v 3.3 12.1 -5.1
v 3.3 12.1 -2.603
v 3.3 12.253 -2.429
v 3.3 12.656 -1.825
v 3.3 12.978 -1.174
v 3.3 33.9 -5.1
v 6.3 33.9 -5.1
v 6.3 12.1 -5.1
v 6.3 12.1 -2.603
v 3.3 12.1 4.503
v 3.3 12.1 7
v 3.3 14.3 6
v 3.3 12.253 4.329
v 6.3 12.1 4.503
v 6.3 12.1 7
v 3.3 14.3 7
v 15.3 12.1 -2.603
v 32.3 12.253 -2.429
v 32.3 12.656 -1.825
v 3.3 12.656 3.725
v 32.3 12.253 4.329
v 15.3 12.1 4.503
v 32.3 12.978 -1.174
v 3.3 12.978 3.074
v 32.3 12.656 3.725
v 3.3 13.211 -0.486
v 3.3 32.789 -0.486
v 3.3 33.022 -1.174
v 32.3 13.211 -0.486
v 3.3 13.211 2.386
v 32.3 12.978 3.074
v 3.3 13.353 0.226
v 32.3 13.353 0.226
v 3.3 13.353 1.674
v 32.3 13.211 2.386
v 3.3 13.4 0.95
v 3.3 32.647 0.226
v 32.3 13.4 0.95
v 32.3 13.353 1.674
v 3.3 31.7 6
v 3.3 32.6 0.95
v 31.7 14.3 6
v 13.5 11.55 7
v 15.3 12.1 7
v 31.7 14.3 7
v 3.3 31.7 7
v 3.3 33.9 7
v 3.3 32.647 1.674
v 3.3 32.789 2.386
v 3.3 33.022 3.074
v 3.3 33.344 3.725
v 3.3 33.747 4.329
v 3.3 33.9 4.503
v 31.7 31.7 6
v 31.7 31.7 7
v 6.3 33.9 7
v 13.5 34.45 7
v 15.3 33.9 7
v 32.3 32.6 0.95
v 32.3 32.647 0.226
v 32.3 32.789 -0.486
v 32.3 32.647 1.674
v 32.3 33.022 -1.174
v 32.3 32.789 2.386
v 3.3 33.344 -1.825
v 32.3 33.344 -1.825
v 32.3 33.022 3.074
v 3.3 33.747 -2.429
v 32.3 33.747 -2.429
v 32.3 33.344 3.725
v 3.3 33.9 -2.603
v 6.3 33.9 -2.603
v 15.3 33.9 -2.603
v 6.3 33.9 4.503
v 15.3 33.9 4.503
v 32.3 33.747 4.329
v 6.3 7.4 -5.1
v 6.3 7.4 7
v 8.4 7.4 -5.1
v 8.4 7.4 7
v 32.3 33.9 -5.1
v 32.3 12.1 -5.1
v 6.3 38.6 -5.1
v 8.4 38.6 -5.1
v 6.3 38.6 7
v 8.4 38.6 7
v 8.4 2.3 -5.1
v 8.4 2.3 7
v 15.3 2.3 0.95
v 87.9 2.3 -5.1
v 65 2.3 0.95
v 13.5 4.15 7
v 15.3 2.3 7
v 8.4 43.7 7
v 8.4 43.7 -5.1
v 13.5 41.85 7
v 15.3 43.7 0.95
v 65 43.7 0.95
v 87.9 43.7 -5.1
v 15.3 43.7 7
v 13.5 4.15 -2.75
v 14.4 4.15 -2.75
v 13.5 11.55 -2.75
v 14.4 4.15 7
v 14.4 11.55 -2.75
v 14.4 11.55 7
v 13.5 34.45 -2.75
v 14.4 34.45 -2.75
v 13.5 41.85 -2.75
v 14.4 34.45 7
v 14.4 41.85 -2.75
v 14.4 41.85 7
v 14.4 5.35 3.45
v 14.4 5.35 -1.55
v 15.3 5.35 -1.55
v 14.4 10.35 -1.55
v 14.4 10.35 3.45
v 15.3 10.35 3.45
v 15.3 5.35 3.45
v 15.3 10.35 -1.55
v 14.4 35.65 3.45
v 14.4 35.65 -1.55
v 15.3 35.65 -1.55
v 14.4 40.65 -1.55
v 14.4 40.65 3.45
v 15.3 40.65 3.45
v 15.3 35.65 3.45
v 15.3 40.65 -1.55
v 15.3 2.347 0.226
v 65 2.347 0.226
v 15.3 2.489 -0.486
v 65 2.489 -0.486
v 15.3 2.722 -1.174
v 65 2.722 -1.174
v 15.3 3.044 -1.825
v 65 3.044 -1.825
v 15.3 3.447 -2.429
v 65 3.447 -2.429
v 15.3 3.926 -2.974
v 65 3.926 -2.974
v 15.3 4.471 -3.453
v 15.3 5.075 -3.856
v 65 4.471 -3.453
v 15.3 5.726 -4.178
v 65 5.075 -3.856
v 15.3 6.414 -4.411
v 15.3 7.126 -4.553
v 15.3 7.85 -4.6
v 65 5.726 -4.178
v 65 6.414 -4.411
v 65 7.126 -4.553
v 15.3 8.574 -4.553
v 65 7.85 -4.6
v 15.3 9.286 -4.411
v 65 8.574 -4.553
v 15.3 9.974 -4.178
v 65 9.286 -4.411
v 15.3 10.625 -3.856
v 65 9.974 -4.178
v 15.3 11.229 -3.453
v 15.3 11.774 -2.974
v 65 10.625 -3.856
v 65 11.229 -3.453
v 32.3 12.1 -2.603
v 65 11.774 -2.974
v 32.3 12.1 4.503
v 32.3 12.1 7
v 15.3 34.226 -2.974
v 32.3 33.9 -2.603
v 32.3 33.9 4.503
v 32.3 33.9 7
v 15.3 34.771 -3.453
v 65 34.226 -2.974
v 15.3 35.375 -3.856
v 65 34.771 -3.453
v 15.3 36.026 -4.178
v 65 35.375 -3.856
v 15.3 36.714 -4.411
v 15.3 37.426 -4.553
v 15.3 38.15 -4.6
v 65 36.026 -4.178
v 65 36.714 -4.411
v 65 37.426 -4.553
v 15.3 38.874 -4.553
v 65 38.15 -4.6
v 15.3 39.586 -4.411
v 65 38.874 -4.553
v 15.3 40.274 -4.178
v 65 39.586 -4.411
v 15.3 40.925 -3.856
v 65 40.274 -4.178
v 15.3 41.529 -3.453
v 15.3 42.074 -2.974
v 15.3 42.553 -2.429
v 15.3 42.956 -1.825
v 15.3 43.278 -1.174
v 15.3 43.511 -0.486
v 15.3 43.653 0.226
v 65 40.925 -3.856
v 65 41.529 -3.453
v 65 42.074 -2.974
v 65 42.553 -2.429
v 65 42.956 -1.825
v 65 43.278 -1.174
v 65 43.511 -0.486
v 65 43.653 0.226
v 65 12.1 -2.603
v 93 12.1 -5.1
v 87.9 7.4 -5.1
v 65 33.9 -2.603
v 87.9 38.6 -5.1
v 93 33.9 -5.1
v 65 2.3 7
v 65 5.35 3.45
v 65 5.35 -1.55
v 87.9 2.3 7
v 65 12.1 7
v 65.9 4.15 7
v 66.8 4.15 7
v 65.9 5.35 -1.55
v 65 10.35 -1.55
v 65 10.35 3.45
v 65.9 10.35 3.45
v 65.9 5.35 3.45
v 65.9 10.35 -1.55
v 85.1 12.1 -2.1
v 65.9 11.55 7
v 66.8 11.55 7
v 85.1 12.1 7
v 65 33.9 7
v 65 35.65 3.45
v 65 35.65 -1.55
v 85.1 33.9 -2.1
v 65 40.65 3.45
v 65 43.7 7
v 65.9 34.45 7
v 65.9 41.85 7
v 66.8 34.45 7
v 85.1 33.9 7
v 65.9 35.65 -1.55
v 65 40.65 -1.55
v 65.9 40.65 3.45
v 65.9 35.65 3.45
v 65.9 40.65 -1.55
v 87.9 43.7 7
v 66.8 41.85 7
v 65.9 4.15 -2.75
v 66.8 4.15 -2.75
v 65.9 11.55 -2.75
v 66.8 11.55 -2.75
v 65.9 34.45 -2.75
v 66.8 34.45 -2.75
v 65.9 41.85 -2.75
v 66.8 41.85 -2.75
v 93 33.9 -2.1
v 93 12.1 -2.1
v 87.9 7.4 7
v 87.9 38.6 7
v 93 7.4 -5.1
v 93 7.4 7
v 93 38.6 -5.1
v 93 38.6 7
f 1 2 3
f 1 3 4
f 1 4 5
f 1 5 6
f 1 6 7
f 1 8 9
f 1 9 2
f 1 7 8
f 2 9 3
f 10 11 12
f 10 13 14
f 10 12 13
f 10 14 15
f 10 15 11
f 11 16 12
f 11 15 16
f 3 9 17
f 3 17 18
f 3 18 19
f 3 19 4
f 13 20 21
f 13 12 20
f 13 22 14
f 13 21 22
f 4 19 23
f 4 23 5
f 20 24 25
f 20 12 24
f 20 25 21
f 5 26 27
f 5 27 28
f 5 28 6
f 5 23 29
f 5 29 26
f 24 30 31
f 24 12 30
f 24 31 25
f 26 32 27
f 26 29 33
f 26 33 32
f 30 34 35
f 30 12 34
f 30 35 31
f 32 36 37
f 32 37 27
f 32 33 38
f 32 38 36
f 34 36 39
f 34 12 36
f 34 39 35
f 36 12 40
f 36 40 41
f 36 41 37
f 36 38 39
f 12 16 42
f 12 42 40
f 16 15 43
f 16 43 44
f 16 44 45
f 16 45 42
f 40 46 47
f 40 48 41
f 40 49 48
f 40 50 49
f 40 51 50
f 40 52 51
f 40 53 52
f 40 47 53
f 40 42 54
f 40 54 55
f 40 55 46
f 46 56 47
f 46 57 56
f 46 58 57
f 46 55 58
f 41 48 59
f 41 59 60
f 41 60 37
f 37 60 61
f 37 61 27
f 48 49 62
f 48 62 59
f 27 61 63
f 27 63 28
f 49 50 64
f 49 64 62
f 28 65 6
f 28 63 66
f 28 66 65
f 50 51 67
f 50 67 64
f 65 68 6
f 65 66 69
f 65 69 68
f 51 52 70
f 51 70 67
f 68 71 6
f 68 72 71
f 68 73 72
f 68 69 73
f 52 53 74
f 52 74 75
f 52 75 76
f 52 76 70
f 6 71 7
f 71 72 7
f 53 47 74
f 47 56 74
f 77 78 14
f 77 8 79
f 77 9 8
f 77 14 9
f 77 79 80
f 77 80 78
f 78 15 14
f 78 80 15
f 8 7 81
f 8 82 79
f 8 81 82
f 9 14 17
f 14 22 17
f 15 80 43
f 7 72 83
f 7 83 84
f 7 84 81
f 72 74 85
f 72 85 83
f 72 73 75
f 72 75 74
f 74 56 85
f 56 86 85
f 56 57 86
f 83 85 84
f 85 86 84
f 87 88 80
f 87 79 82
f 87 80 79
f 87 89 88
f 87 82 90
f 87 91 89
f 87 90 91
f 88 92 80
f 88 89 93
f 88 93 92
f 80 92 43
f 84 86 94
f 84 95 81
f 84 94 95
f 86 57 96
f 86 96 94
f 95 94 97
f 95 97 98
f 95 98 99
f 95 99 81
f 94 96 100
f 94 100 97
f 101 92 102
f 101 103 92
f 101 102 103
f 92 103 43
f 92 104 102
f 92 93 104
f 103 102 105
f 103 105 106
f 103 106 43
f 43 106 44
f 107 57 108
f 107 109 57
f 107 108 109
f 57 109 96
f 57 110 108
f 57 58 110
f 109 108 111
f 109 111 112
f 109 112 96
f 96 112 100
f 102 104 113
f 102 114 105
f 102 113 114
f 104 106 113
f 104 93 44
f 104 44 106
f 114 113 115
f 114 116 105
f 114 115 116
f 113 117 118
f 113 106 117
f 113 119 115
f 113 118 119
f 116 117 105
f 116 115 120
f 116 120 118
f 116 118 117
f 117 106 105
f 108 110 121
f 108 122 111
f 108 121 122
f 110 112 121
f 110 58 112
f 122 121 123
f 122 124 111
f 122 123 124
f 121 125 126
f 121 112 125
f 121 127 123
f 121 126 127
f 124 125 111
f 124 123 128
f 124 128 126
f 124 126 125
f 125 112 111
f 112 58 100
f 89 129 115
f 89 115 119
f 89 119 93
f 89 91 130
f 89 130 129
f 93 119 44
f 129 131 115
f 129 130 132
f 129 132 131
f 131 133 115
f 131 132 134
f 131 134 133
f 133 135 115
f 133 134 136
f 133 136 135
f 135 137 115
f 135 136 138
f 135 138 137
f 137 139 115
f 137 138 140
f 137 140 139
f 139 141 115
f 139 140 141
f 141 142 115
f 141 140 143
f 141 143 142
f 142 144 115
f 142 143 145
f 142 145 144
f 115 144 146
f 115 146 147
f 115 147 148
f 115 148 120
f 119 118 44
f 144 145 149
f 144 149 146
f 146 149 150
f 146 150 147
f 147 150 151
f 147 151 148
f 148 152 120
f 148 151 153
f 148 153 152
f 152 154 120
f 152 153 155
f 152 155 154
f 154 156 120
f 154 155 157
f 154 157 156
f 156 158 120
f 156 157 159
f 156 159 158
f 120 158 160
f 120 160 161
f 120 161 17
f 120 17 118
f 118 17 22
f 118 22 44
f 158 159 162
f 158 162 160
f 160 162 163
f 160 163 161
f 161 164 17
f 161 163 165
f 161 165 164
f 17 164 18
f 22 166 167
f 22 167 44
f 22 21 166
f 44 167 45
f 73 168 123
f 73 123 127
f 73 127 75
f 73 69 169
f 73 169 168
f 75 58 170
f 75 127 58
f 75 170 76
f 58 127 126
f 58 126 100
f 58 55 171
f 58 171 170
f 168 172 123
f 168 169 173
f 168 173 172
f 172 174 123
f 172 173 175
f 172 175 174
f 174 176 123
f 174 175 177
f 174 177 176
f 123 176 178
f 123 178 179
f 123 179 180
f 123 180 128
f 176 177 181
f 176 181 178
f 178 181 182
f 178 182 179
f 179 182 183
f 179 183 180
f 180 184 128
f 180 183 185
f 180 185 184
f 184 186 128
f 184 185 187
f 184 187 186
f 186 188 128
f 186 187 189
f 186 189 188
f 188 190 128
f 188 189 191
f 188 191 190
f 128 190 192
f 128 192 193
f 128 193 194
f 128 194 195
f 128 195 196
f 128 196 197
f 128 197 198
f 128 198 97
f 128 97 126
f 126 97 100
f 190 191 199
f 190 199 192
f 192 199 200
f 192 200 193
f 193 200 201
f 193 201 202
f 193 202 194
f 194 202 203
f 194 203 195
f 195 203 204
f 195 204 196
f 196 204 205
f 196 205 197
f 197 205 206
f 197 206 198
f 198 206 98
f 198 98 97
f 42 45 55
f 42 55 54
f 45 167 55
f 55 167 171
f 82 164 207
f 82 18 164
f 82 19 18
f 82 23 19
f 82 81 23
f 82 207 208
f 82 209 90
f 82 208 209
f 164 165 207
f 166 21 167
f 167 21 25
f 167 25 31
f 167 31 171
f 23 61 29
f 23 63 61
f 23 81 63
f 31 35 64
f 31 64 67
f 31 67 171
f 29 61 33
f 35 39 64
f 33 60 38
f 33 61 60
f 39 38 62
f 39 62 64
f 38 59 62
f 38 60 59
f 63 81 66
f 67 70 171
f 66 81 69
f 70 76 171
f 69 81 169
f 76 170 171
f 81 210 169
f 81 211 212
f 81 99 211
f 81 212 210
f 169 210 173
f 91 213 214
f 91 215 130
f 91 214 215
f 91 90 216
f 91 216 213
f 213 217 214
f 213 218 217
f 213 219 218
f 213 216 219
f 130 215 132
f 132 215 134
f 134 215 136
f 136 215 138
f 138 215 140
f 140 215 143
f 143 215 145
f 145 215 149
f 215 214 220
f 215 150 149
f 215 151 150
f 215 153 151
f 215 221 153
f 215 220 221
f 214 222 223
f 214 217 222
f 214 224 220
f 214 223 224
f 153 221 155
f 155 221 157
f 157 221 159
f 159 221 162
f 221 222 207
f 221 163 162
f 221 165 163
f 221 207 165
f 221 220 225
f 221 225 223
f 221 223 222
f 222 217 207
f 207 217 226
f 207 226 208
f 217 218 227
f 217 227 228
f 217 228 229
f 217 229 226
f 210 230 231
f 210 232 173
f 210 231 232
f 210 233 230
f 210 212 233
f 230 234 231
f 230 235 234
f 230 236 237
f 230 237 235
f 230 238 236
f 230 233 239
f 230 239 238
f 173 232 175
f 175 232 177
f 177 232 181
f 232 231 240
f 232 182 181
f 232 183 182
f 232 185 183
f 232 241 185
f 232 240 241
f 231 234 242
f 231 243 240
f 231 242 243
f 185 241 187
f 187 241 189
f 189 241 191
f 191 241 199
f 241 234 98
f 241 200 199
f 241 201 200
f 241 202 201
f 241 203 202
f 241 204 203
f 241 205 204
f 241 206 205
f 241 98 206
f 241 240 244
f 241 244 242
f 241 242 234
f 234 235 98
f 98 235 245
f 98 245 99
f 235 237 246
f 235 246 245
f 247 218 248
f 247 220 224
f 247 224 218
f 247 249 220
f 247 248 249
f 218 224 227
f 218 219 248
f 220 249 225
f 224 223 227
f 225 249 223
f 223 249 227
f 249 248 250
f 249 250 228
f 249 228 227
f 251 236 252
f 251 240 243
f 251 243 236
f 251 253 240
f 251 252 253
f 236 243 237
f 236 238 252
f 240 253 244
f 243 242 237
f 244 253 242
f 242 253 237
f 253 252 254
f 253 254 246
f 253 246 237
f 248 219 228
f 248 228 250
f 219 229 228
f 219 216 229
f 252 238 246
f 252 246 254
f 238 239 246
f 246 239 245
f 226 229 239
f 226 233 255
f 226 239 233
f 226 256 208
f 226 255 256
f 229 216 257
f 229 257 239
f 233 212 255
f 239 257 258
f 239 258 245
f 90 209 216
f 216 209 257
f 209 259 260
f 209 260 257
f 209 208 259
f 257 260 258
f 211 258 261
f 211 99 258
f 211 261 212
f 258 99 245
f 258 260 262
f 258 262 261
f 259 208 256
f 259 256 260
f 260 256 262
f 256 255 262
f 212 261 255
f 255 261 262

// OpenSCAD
// Dilder Rev 2 "extended with joystick" — AAA CRADLE WITH BATT CLIPS (2026-04-27)
//
// Fork of aaa-cradle-insert-v1.scad. Defaults are baked from the
// "working insert 4-26-26" preset (matched the existing constants
// exactly — no value changes vs parent SCAD). The new feature is
// 4 vertical drop-in slots sized for the smallest Swpeet 1.5V AAA
// battery contact plate (unipolar, 7 × 7 mm stamped sheet metal),
// one at each X end of each AAA bay.
//
// How the slots are used:
//   - Each plate drops in from the plug top face into a 7.4 × 7.4 mm
//     pocket, plate face perpendicular to the cell axis.
//   - The pocket is 0.9 mm thick along X (plate ~0.5 mm + 0.2 mm slop
//     per edge), so the plate is press-fit / friction-held by its own
//     thickness.
//   - The pocket extends from cell-axis level up to the plug top so
//     wires can exit upward and the plate is droppable post-print.
//   - Spring side faces INTO the bay; the cell pushes the plate's
//     contact face axially. Solder a wire to the plate's outer face
//     before insertion.
//
// Note: only unipolar plates are used (4 total = 2 bays × 2 ends).
// Wire the cells in PARALLEL — never in series, since 2S 10440 = 7.4 V
// would exceed the Pico W's 5.5 V VSYS max.
//
// Export:
//   openscad -o aaa-cradle-with-batt-clips.3mf aaa-cradle-with-batt-clips.scad

$fn = 48;

// ============================================================
// Match the cover / base shell parameters
// ============================================================
enclosure_outer_width_along_x_axis_mm          = 94.5;   // was 91.5 — +3 mm on -X side for TP4056
enclosure_outer_depth_along_y_axis_mm          = 46;
minus_x_end_wall_thickness_mm                  = 3.0;
plus_x_end_wall_thickness_mm                   = 1.2;
perimeter_long_side_wall_thickness_y_mm_base   = 2;
corner_pillar_square_side_length_mm            = 5;

// Cover cavity inner bounds (the space the plug fills)
cavity_inner_x_start_mm = minus_x_end_wall_thickness_mm;                         // = 3.0
cavity_inner_x_end_mm =
    enclosure_outer_width_along_x_axis_mm
      - plus_x_end_wall_thickness_mm;                                            // = 93.3
cavity_inner_y_start_mm = perimeter_long_side_wall_thickness_y_mm_base;          // = 2.0
cavity_inner_y_end_mm =
    enclosure_outer_depth_along_y_axis_mm
      - perimeter_long_side_wall_thickness_y_mm_base;                            // = 44.0

// Plug outer footprint = cavity − a tiny slide-in slop on every wall.
plug_wall_slop_mm                              = 0.3;
plug_x_start_mm = cavity_inner_x_start_mm + plug_wall_slop_mm;                   // = 3.3
plug_x_end_mm   = cavity_inner_x_end_mm   - plug_wall_slop_mm;                   // = 93.0
plug_y_start_mm = cavity_inner_y_start_mm + plug_wall_slop_mm;                   // = 2.3
plug_y_end_mm   = cavity_inner_y_end_mm   - plug_wall_slop_mm;                   // = 43.7

// ============================================================
// Plug Z
// ============================================================
face_plate_bottom_z_in_cover_local_mm          = 7;
aaa_cell_diameter_mm                           = 10.5;
aaa_cell_radial_slop_mm                        = 0.3;
aaa_bay_diameter_mm =
    aaa_cell_diameter_mm + 2 * aaa_cell_radial_slop_mm;  // = 11.1
aaa_bay_wall_above_and_below_mm                = 0.5;

plug_thickness_mm =
    aaa_bay_diameter_mm + 2 * aaa_bay_wall_above_and_below_mm;  // = 12.1
plug_top_z_mm = face_plate_bottom_z_in_cover_local_mm;          // = 7
plug_bottom_z_mm = plug_top_z_mm - plug_thickness_mm;           // = -5.1

// ============================================================
// AAA cells — 2 cells lying along X, stacked in Y
// ============================================================
aaa_cell_length_mm                             = 44.5;
aaa_cell_axial_slop_mm                         = 1.0;
aaa_cell_contact_space_per_end_mm              = 2.0;
aaa_bay_length_along_x_mm =
    aaa_cell_length_mm
      + 2 * aaa_cell_contact_space_per_end_mm
      + aaa_cell_axial_slop_mm;                          // = 49.5

plus_x_pillar_cutout_minus_x_edge_mm =
    (enclosure_outer_width_along_x_axis_mm
       - plus_x_end_wall_thickness_mm
       - corner_pillar_square_side_length_mm)
      - 0.4;                                              // = 87.9
aaa_bay_gap_from_pillar_cutout_mm              = 3.0;
aaa_bay_shift_toward_minus_x_mm               = 20;      // shift bays 20 mm toward origin
aaa_bay_plus_x_end_mm =
    plus_x_pillar_cutout_minus_x_edge_mm
      - aaa_bay_gap_from_pillar_cutout_mm
      - aaa_bay_shift_toward_minus_x_mm;                  // = 69.9
aaa_bay_minus_x_start_mm =
    aaa_bay_plus_x_end_mm - aaa_bay_length_along_x_mm;   // = 20.4

aaa_bay_minus_y_center_y_mm =
    plug_y_start_mm + aaa_bay_diameter_mm / 2;            // = 7.85
aaa_bay_plus_y_center_y_mm =
    plug_y_end_mm - aaa_bay_diameter_mm / 2;              // = 38.15
aaa_bay_center_z_mm =
    (plug_top_z_mm + plug_bottom_z_mm) / 2;               // ≈ 0.95

aaa_bay_top_open_z_bottom_mm                   = aaa_bay_center_z_mm;
aaa_bay_top_open_z_top_mm                      = plug_top_z_mm + 0.1;

// ============================================================
// Battery contact-plate slots — Swpeet 1.5 V AAA battery spring kit,
// smallest unipolar plate (7 × 7 mm stamped sheet metal). Four slots
// total (2 bays × 2 ends). Plates drop in from above; wires exit
// through the top of the slot.
//
// Slot orientation: plate sits in the YZ plane, perpendicular to the
// cell axis. Plate face flush with the bay's X end. Slot is centered
// on the bay Y center and on the cell axis Z.
// ============================================================
batt_clip_plate_size_y_mm                      = 7.0;     // smallest Swpeet unipolar plate
batt_clip_plate_size_z_mm                      = 7.0;     // smallest Swpeet unipolar plate
batt_clip_plate_thickness_x_mm                 = 0.5;     // sheet metal thickness
batt_clip_slot_slop_per_edge_mm                = 0.2;     // print tolerance per edge

batt_clip_slot_y_size_mm =
    batt_clip_plate_size_y_mm + 2 * batt_clip_slot_slop_per_edge_mm;            // = 7.4
batt_clip_slot_x_size_mm =
    batt_clip_plate_thickness_x_mm + 2 * batt_clip_slot_slop_per_edge_mm;       // = 0.9
batt_clip_slot_z_bottom_mm =
    aaa_bay_center_z_mm
      - batt_clip_plate_size_z_mm / 2
      - batt_clip_slot_slop_per_edge_mm;                                         // ≈ -2.75
batt_clip_slot_z_top_mm                        = plug_top_z_mm + 0.1;            // = 7.1

// ============================================================
// Battery clip retainer wall — keeps the contact plate from
// sliding INTO the bay (toward the cell). Thin wall sits on the
// cell side of each clip slot, with a smaller central window so
// the plate's edges are caught but the contact face stays exposed.
//
// Implementation: the slot is pulled back from the bay end by
// `batt_clip_retainer_thickness_x_mm`, leaving body material as
// the wall. A rectangular window is then cut through that wall.
// Window must be smaller than the plate (Y/Z) so the wall catches
// the plate's perimeter — defaults give a 1 mm ring of engagement
// on all sides of a 7 × 7 mm plate.
//
// Set `batt_clip_retainer_enabled = false` to fall back to the
// original through-slot (no wall, plate can slide into bay).
// ============================================================
batt_clip_retainer_enabled                     = true;
batt_clip_retainer_thickness_x_mm              = 1.0;
batt_clip_retainer_window_size_y_mm            = 5.0;     // < plate Y so wall catches edges
batt_clip_retainer_window_size_z_mm            = 5.0;     // < plate Z
batt_clip_retainer_window_z_extend_up_mm       = 0.0;     // [0:0.5:10.0] extra height added above the centered window (opens toward plug top)

// ============================================================
// FPC gap
// ============================================================
fpc_gap_width_along_x_mm                       = 3;

// ============================================================
// Pico nest
// ============================================================
pico_w_board_width_along_y_mm                  = 21.0;
pico_w_board_length_along_x_mm                 = 78;   // was 61 — nest extends to x≈87.3 for 55 mm past connecting block
print_fit_tolerance_slop_mm                    = 0.4;
pico_nest_width_along_y_mm =
    pico_w_board_width_along_y_mm + 2 * print_fit_tolerance_slop_mm;              // = 21.8
pico_nest_length_along_x_mm =
    pico_w_board_length_along_x_mm + 2 * print_fit_tolerance_slop_mm;             // = 61.8
pico_nest_depth_along_z_mm                     = plug_thickness_mm;

pico_nest_x_region_start_mm =
    plug_x_start_mm + fpc_gap_width_along_x_mm;                                   // = 6.3
pico_nest_x_region_end_mm   = aaa_bay_minus_x_start_mm;                           // = 35.4
pico_nest_x_start_mm =
    (pico_nest_x_region_start_mm + pico_nest_x_region_end_mm) / 2
      - pico_nest_length_along_x_mm / 2;
pico_nest_x_start_clamped_mm =
    max(pico_nest_x_start_mm, pico_nest_x_region_start_mm);
pico_nest_y_start_mm =
    enclosure_outer_depth_along_y_axis_mm / 2
      - pico_nest_width_along_y_mm / 2;                                           // = 12.1

// ============================================================
// -X middle inset — extended to 29 mm / full height for TP4056
// ============================================================
minus_x_inset_length_along_x_mm                = 29;
minus_x_inset_height_reduction_from_plug_mm    = 0;
minus_x_inset_depth_along_z_mm =
    plug_thickness_mm - minus_x_inset_height_reduction_from_plug_mm;
minus_x_inset_x_start_mm                       = plug_x_start_mm;
minus_x_inset_x_end_mm =
    minus_x_inset_x_start_mm + minus_x_inset_length_along_x_mm;
minus_x_inset_y_start_mm                       = pico_nest_y_start_mm;
minus_x_inset_y_end_mm =
    minus_x_inset_y_start_mm + pico_nest_width_along_y_mm;
minus_x_inset_z_top_mm                         = plug_top_z_mm;
minus_x_inset_z_bottom_mm =
    minus_x_inset_z_top_mm - minus_x_inset_depth_along_z_mm;

// ============================================================
// Connecting block — fills the -X inset, 29 mm X / full height
// ============================================================
connecting_block_length_along_x_mm             = 29;
connecting_block_height_reduction_from_plug_mm = 0;
connecting_block_height_along_z_mm =
    plug_thickness_mm - connecting_block_height_reduction_from_plug_mm;
connecting_block_x_start_mm                    = minus_x_inset_x_start_mm;
connecting_block_x_end_mm =
    connecting_block_x_start_mm + connecting_block_length_along_x_mm;
connecting_block_y_start_mm                    = minus_x_inset_y_start_mm;
connecting_block_y_end_mm                      = minus_x_inset_y_end_mm;
connecting_block_z_top_mm                      = plug_top_z_mm;
connecting_block_z_bottom_mm =
    connecting_block_z_top_mm - connecting_block_height_along_z_mm;

// ============================================================
// TP4056 indent — 1 mm recess on connecting block top face
// ============================================================
tp4056_board_length_along_x_mm                 = 28;
tp4056_board_width_along_y_mm                  = 17;
tp4056_indent_depth_z_mm                       = 1.0;
tp4056_indent_slop_per_edge_mm                 = 0.2;

tp4056_indent_x_start_mm                       = connecting_block_x_start_mm;
tp4056_indent_length_mm =
    tp4056_board_length_along_x_mm + 2 * tp4056_indent_slop_per_edge_mm;
tp4056_indent_width_mm =
    tp4056_board_width_along_y_mm + 2 * tp4056_indent_slop_per_edge_mm;
tp4056_indent_y_start_mm =
    (connecting_block_y_start_mm + connecting_block_y_end_mm) / 2
      - tp4056_indent_width_mm / 2;
tp4056_indent_z_bottom_mm =
    plug_top_z_mm - tp4056_indent_depth_z_mm;

// ============================================================
// +X display connector cutout — 3 mm from bottom face
// ============================================================
plus_x_cutout_depth_z_mm                       = 3;
plus_x_cutout_z_bottom_mm                      = plug_bottom_z_mm;
plus_x_cutout_z_top_mm =
    plug_bottom_z_mm + plus_x_cutout_depth_z_mm;
plus_x_cutout_x_start_mm                       = aaa_bay_plus_x_end_mm;
plus_x_cutout_x_end_mm                         = plug_x_end_mm;

// ============================================================
// Corner pillar cutouts
// ============================================================
corner_pillar_cutout_slop_mm                   = 0.4;
corner_pillar_cutout_xy_positions = [
    [minus_x_end_wall_thickness_mm,
     perimeter_long_side_wall_thickness_y_mm_base],
    [enclosure_outer_width_along_x_axis_mm
       - plus_x_end_wall_thickness_mm
       - corner_pillar_square_side_length_mm,
     perimeter_long_side_wall_thickness_y_mm_base],
    [minus_x_end_wall_thickness_mm,
     enclosure_outer_depth_along_y_axis_mm
       - perimeter_long_side_wall_thickness_y_mm_base
       - corner_pillar_square_side_length_mm],
    [enclosure_outer_width_along_x_axis_mm
       - plus_x_end_wall_thickness_mm
       - corner_pillar_square_side_length_mm,
     enclosure_outer_depth_along_y_axis_mm
       - perimeter_long_side_wall_thickness_y_mm_base
       - corner_pillar_square_side_length_mm],
];


// ========== Battery clip slot helper ==========

// Drops a thin YZ slot at the X-end of a bay, sized for a Swpeet
// unipolar contact plate. is_plus_x_end = true puts the slot just
// outside the bay on the +X side; false on the -X side. The slot
// extends upward to plug_top so plates drop in from above.
//
// When `batt_clip_retainer_enabled` is true, the slot is pulled
// further from the bay by `batt_clip_retainer_thickness_x_mm` to
// leave a wall of body material between slot and bay; a smaller
// rectangular contact window is then cut through that wall.
module batt_clip_slot(bay_y_center_mm, bay_x_end_mm, is_plus_x_end) {
    retainer_thickness_mm =
        batt_clip_retainer_enabled ? batt_clip_retainer_thickness_x_mm : 0;

    slot_x_start =
        is_plus_x_end
          ? bay_x_end_mm + retainer_thickness_mm
          : bay_x_end_mm - batt_clip_slot_x_size_mm - retainer_thickness_mm;
    slot_y_start = bay_y_center_mm - batt_clip_slot_y_size_mm / 2;
    translate([slot_x_start, slot_y_start, batt_clip_slot_z_bottom_mm])
        cube([batt_clip_slot_x_size_mm,
              batt_clip_slot_y_size_mm,
              batt_clip_slot_z_top_mm - batt_clip_slot_z_bottom_mm]);

    // Contact window through the retainer wall. Window punches from
    // the slot's bay-facing side through to the bay cylinder, smaller
    // than the plate so a perimeter ring of wall remains to catch it.
    if (batt_clip_retainer_enabled) {
        window_x_start =
            is_plus_x_end
              ? bay_x_end_mm - 0.1
              : bay_x_end_mm - retainer_thickness_mm - 0.1;
        window_y_start =
            bay_y_center_mm - batt_clip_retainer_window_size_y_mm / 2;
        window_z_start =
            aaa_bay_center_z_mm - batt_clip_retainer_window_size_z_mm / 2;
        window_z_total =
            batt_clip_retainer_window_size_z_mm + batt_clip_retainer_window_z_extend_up_mm;
        translate([window_x_start, window_y_start, window_z_start])
            cube([retainer_thickness_mm + 0.2,
                  batt_clip_retainer_window_size_y_mm,
                  window_z_total]);
    }
}


// ========== AAA cradle insert ==========

module aaa_cradle_insert() {
    union() {
    difference() {
        // Main plug body
        translate([plug_x_start_mm, plug_y_start_mm, plug_bottom_z_mm])
            cube([plug_x_end_mm - plug_x_start_mm,
                  plug_y_end_mm - plug_y_start_mm,
                  plug_thickness_mm]);

        // Corner pillar cutouts (4)
        for (xy = corner_pillar_cutout_xy_positions) {
            translate([xy[0] - corner_pillar_cutout_slop_mm,
                       xy[1] - corner_pillar_cutout_slop_mm,
                       plug_bottom_z_mm - 0.1])
                cube([corner_pillar_square_side_length_mm + 2 * corner_pillar_cutout_slop_mm,
                      corner_pillar_square_side_length_mm + 2 * corner_pillar_cutout_slop_mm,
                      plug_thickness_mm + 0.2]);
        }

        // FPC gap
        translate([plug_x_start_mm - 0.1,
                   plug_y_start_mm - 0.1,
                   plug_bottom_z_mm - 0.1])
            cube([fpc_gap_width_along_x_mm + 0.1,
                  plug_y_end_mm - plug_y_start_mm + 0.2,
                  plug_thickness_mm + 0.2]);

        // AAA cell bays
        for (bay_y_center_mm = [aaa_bay_minus_y_center_y_mm,
                                aaa_bay_plus_y_center_y_mm]) {
            translate([aaa_bay_minus_x_start_mm - 0.1,
                       bay_y_center_mm,
                       aaa_bay_center_z_mm])
                rotate([0, 90, 0])
                    cylinder(h = aaa_bay_length_along_x_mm + 0.2,
                             d = aaa_bay_diameter_mm);

            bay_y_start_mm = bay_y_center_mm - aaa_bay_diameter_mm / 2;
            translate([aaa_bay_minus_x_start_mm - 0.1,
                       bay_y_start_mm,
                       aaa_bay_top_open_z_bottom_mm])
                cube([aaa_bay_length_along_x_mm + 0.2,
                      aaa_bay_diameter_mm,
                      aaa_bay_top_open_z_top_mm - aaa_bay_top_open_z_bottom_mm]);
        }

        // Battery contact-plate slots — 4 total (2 bays × 2 ends)
        for (bay_y_center_mm = [aaa_bay_minus_y_center_y_mm,
                                aaa_bay_plus_y_center_y_mm]) {
            batt_clip_slot(bay_y_center_mm, aaa_bay_minus_x_start_mm, false);
            batt_clip_slot(bay_y_center_mm, aaa_bay_plus_x_end_mm, true);
        }

        // Pico nest
        translate([pico_nest_x_start_clamped_mm,
                   pico_nest_y_start_mm,
                   plug_bottom_z_mm - 0.1])
            cube([pico_nest_length_along_x_mm,
                  pico_nest_width_along_y_mm,
                  plug_thickness_mm + 0.2]);

        // -X middle inset
        translate([minus_x_inset_x_start_mm,
                   minus_x_inset_y_start_mm,
                   minus_x_inset_z_bottom_mm])
            cube([minus_x_inset_x_end_mm - minus_x_inset_x_start_mm,
                  minus_x_inset_y_end_mm - minus_x_inset_y_start_mm,
                  minus_x_inset_z_top_mm - minus_x_inset_z_bottom_mm + 0.1]);

        // +X display connector cutout — 3 mm from bottom face
        translate([plus_x_cutout_x_start_mm,
                   pico_nest_y_start_mm,
                   plus_x_cutout_z_bottom_mm - 0.1])
            cube([plus_x_cutout_x_end_mm - plus_x_cutout_x_start_mm + 0.1,
                  pico_nest_width_along_y_mm,
                  plus_x_cutout_depth_z_mm + 0.1]);
    }

    // Connecting block with battery arcs and TP4056 indent
    difference() {
        translate([connecting_block_x_start_mm,
                   connecting_block_y_start_mm,
                   connecting_block_z_bottom_mm])
            cube([connecting_block_x_end_mm - connecting_block_x_start_mm,
                  connecting_block_y_end_mm - connecting_block_y_start_mm,
                  connecting_block_z_top_mm - connecting_block_z_bottom_mm]);

        // Concave battery arcs on ±Y faces
        for (bay_y_center = [aaa_bay_minus_y_center_y_mm,
                             aaa_bay_plus_y_center_y_mm]) {
            translate([connecting_block_x_start_mm - 0.1,
                       bay_y_center,
                       aaa_bay_center_z_mm])
                rotate([0, 90, 0])
                    cylinder(h = connecting_block_x_end_mm
                                   - connecting_block_x_start_mm + 0.2,
                             r = aaa_bay_diameter_mm / 2);
        }

        // TP4056 indent
        translate([tp4056_indent_x_start_mm,
                   tp4056_indent_y_start_mm,
                   tp4056_indent_z_bottom_mm])
            cube([tp4056_indent_length_mm,
                  tp4056_indent_width_mm,
                  tp4056_indent_depth_z_mm + 0.1]);
    }
    }
}

aaa_cradle_insert();
